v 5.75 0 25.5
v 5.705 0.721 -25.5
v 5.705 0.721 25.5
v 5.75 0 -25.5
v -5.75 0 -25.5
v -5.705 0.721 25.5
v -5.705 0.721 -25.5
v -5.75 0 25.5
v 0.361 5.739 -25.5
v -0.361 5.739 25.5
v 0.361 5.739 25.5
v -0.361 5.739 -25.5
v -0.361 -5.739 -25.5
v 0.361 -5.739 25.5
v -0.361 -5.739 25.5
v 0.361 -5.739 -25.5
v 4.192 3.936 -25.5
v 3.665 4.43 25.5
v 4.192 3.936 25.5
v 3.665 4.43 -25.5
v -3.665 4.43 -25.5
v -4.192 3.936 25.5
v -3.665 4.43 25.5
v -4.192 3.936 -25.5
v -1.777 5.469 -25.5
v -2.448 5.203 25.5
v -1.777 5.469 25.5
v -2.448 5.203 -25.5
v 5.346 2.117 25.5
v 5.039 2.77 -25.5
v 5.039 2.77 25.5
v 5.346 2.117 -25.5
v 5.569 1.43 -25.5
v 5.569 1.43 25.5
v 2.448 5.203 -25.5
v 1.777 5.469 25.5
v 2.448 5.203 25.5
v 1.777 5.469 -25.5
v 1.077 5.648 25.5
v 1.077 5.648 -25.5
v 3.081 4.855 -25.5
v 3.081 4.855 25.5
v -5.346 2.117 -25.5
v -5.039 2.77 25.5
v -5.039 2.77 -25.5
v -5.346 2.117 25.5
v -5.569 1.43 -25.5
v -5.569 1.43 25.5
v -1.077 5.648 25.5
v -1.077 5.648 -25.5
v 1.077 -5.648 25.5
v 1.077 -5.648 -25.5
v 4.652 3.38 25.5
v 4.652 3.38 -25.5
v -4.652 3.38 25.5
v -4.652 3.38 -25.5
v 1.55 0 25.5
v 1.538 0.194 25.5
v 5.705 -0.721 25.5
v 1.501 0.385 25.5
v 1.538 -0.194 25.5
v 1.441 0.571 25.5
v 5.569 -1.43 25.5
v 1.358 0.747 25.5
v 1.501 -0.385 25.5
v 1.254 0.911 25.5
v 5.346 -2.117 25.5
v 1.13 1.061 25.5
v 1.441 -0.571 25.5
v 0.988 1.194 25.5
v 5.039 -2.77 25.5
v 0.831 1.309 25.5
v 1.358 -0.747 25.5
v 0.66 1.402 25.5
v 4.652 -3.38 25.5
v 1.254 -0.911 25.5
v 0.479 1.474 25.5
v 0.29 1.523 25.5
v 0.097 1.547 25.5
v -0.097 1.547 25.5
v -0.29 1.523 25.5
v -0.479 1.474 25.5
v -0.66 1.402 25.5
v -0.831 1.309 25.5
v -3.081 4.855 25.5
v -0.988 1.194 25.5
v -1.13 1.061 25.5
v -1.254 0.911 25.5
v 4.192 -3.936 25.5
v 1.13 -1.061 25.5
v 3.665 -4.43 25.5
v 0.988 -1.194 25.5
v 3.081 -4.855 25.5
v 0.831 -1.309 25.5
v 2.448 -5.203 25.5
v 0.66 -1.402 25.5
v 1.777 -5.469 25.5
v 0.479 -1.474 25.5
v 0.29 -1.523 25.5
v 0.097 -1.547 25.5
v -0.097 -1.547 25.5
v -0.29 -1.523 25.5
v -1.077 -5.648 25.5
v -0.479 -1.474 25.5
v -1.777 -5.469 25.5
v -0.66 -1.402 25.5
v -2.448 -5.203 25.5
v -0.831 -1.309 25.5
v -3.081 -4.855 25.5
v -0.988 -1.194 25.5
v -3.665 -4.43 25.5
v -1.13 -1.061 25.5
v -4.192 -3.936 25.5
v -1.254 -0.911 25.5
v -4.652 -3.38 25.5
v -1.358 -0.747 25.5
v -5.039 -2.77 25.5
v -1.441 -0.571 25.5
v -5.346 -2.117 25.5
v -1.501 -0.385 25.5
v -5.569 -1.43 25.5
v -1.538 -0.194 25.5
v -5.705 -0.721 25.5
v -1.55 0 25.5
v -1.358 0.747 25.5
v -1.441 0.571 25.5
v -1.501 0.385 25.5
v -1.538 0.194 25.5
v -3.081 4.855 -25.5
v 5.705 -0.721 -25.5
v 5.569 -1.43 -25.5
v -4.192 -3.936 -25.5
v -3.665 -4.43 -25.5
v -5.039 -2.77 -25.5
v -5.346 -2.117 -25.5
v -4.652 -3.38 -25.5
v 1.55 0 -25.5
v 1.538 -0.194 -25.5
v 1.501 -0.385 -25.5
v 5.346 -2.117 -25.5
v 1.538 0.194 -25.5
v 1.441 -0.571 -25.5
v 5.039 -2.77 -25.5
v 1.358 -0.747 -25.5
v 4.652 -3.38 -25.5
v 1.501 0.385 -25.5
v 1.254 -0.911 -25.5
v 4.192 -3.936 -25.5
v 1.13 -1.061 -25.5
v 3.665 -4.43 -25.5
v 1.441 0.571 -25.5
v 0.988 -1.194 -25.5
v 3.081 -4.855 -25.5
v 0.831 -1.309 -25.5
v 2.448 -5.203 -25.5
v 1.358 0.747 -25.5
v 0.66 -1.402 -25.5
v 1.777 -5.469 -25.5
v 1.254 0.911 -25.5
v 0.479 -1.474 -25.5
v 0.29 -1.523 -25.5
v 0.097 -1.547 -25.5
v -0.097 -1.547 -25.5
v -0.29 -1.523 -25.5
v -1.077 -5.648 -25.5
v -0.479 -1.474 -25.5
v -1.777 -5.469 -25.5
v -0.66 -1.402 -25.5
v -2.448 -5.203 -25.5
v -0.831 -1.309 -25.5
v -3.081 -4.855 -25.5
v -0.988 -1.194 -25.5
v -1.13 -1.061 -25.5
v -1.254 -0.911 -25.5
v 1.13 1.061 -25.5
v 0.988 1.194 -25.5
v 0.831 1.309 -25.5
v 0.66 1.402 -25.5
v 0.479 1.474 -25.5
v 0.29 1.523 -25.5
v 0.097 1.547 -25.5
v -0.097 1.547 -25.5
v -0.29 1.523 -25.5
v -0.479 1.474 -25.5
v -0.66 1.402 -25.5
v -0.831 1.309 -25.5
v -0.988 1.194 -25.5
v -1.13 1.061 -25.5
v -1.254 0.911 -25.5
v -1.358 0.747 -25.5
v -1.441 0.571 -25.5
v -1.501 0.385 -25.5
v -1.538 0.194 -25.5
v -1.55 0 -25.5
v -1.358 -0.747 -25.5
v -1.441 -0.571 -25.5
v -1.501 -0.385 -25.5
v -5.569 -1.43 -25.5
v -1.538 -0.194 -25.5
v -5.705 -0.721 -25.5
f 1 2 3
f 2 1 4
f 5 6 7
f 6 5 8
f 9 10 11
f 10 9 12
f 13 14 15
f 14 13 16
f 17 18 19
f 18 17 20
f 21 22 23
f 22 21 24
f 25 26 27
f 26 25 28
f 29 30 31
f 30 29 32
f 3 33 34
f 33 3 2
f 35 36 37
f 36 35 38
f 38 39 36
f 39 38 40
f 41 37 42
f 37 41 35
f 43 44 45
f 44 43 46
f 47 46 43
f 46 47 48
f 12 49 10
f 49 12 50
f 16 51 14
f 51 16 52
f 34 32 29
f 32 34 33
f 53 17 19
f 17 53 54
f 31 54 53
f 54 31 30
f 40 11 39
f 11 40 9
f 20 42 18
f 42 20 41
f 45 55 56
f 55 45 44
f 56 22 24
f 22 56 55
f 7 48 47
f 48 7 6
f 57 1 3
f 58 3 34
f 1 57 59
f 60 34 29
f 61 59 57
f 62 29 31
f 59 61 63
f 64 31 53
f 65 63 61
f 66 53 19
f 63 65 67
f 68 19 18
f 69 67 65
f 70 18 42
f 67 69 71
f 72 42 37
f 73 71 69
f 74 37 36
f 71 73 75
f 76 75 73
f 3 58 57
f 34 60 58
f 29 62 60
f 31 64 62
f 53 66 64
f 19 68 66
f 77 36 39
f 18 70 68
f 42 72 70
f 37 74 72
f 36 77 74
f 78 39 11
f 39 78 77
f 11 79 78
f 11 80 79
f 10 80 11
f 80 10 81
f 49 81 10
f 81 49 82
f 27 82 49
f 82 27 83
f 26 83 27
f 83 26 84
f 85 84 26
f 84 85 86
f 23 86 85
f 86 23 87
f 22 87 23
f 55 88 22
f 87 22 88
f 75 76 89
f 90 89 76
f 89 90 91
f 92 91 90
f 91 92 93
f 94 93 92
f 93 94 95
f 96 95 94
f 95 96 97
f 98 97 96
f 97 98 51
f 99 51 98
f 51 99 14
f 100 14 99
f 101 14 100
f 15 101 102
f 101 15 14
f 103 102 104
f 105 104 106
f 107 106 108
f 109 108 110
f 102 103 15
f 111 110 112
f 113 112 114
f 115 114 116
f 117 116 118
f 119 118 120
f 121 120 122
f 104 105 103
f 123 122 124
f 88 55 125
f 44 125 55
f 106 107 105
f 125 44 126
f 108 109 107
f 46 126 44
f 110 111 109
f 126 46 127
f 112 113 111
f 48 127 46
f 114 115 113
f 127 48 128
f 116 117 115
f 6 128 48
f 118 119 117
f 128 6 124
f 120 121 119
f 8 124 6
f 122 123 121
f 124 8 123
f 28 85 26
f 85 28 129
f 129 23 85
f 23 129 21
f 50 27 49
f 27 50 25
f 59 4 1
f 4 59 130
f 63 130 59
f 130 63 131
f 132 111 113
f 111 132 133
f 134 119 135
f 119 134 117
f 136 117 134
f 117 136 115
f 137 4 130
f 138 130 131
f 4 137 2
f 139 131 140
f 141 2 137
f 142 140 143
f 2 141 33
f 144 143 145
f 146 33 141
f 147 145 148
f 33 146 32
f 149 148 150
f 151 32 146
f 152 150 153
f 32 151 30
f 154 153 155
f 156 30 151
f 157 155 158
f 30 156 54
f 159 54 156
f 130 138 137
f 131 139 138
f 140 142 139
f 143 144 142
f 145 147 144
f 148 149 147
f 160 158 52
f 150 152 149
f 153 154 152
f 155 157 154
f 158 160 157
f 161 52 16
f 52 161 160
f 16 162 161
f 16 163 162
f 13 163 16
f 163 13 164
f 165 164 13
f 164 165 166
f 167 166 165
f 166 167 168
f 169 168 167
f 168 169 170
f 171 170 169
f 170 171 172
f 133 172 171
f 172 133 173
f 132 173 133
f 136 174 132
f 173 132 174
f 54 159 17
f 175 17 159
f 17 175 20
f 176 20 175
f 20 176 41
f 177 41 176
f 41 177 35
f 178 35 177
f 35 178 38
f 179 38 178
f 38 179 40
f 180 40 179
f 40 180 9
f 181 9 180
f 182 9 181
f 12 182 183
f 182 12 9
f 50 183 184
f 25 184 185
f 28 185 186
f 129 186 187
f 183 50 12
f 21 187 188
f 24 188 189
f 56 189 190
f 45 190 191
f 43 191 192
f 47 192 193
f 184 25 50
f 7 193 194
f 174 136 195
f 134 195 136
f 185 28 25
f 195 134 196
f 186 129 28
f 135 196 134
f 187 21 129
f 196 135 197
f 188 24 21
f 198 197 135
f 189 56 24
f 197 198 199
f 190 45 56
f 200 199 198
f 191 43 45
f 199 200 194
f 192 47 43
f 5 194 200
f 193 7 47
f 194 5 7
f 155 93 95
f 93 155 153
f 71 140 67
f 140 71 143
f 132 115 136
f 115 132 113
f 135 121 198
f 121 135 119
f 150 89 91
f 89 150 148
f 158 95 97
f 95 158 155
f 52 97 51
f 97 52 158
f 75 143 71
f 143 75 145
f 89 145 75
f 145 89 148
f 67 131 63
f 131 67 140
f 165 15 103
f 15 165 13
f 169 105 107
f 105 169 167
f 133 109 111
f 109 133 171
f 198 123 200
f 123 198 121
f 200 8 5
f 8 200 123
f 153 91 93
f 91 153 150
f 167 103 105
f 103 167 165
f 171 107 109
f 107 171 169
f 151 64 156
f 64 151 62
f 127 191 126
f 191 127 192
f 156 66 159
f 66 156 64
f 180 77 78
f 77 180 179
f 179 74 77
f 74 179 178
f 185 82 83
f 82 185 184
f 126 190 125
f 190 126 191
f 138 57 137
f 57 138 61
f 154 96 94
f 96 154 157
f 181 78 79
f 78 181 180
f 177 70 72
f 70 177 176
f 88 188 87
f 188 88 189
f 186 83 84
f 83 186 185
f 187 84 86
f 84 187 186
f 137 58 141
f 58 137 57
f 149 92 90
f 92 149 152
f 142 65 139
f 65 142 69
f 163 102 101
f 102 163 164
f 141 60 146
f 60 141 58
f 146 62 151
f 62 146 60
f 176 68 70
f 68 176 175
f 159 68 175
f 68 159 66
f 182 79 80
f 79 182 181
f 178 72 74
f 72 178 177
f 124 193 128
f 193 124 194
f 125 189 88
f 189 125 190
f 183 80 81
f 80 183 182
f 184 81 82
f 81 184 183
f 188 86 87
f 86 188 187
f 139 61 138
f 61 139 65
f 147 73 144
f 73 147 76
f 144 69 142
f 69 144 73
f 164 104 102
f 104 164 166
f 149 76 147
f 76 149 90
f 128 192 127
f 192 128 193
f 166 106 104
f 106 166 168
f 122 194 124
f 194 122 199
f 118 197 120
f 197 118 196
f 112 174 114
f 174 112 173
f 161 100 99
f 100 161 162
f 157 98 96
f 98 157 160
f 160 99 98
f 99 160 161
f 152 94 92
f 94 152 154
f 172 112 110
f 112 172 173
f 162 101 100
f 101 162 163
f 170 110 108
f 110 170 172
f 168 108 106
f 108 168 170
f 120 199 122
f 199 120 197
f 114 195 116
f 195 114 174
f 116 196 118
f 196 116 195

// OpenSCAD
$fn = 50;


difference() {
	union() {
		translate(v = [0, 0, -25.5000000000]) {
			cylinder(h = 51, r = 5.7500000000);
		}
	}
	union() {
		translate(v = [0, 0, -100.0000000000]) {
			cylinder(h = 200, r = 1.5500000000);
		}
	}
}
